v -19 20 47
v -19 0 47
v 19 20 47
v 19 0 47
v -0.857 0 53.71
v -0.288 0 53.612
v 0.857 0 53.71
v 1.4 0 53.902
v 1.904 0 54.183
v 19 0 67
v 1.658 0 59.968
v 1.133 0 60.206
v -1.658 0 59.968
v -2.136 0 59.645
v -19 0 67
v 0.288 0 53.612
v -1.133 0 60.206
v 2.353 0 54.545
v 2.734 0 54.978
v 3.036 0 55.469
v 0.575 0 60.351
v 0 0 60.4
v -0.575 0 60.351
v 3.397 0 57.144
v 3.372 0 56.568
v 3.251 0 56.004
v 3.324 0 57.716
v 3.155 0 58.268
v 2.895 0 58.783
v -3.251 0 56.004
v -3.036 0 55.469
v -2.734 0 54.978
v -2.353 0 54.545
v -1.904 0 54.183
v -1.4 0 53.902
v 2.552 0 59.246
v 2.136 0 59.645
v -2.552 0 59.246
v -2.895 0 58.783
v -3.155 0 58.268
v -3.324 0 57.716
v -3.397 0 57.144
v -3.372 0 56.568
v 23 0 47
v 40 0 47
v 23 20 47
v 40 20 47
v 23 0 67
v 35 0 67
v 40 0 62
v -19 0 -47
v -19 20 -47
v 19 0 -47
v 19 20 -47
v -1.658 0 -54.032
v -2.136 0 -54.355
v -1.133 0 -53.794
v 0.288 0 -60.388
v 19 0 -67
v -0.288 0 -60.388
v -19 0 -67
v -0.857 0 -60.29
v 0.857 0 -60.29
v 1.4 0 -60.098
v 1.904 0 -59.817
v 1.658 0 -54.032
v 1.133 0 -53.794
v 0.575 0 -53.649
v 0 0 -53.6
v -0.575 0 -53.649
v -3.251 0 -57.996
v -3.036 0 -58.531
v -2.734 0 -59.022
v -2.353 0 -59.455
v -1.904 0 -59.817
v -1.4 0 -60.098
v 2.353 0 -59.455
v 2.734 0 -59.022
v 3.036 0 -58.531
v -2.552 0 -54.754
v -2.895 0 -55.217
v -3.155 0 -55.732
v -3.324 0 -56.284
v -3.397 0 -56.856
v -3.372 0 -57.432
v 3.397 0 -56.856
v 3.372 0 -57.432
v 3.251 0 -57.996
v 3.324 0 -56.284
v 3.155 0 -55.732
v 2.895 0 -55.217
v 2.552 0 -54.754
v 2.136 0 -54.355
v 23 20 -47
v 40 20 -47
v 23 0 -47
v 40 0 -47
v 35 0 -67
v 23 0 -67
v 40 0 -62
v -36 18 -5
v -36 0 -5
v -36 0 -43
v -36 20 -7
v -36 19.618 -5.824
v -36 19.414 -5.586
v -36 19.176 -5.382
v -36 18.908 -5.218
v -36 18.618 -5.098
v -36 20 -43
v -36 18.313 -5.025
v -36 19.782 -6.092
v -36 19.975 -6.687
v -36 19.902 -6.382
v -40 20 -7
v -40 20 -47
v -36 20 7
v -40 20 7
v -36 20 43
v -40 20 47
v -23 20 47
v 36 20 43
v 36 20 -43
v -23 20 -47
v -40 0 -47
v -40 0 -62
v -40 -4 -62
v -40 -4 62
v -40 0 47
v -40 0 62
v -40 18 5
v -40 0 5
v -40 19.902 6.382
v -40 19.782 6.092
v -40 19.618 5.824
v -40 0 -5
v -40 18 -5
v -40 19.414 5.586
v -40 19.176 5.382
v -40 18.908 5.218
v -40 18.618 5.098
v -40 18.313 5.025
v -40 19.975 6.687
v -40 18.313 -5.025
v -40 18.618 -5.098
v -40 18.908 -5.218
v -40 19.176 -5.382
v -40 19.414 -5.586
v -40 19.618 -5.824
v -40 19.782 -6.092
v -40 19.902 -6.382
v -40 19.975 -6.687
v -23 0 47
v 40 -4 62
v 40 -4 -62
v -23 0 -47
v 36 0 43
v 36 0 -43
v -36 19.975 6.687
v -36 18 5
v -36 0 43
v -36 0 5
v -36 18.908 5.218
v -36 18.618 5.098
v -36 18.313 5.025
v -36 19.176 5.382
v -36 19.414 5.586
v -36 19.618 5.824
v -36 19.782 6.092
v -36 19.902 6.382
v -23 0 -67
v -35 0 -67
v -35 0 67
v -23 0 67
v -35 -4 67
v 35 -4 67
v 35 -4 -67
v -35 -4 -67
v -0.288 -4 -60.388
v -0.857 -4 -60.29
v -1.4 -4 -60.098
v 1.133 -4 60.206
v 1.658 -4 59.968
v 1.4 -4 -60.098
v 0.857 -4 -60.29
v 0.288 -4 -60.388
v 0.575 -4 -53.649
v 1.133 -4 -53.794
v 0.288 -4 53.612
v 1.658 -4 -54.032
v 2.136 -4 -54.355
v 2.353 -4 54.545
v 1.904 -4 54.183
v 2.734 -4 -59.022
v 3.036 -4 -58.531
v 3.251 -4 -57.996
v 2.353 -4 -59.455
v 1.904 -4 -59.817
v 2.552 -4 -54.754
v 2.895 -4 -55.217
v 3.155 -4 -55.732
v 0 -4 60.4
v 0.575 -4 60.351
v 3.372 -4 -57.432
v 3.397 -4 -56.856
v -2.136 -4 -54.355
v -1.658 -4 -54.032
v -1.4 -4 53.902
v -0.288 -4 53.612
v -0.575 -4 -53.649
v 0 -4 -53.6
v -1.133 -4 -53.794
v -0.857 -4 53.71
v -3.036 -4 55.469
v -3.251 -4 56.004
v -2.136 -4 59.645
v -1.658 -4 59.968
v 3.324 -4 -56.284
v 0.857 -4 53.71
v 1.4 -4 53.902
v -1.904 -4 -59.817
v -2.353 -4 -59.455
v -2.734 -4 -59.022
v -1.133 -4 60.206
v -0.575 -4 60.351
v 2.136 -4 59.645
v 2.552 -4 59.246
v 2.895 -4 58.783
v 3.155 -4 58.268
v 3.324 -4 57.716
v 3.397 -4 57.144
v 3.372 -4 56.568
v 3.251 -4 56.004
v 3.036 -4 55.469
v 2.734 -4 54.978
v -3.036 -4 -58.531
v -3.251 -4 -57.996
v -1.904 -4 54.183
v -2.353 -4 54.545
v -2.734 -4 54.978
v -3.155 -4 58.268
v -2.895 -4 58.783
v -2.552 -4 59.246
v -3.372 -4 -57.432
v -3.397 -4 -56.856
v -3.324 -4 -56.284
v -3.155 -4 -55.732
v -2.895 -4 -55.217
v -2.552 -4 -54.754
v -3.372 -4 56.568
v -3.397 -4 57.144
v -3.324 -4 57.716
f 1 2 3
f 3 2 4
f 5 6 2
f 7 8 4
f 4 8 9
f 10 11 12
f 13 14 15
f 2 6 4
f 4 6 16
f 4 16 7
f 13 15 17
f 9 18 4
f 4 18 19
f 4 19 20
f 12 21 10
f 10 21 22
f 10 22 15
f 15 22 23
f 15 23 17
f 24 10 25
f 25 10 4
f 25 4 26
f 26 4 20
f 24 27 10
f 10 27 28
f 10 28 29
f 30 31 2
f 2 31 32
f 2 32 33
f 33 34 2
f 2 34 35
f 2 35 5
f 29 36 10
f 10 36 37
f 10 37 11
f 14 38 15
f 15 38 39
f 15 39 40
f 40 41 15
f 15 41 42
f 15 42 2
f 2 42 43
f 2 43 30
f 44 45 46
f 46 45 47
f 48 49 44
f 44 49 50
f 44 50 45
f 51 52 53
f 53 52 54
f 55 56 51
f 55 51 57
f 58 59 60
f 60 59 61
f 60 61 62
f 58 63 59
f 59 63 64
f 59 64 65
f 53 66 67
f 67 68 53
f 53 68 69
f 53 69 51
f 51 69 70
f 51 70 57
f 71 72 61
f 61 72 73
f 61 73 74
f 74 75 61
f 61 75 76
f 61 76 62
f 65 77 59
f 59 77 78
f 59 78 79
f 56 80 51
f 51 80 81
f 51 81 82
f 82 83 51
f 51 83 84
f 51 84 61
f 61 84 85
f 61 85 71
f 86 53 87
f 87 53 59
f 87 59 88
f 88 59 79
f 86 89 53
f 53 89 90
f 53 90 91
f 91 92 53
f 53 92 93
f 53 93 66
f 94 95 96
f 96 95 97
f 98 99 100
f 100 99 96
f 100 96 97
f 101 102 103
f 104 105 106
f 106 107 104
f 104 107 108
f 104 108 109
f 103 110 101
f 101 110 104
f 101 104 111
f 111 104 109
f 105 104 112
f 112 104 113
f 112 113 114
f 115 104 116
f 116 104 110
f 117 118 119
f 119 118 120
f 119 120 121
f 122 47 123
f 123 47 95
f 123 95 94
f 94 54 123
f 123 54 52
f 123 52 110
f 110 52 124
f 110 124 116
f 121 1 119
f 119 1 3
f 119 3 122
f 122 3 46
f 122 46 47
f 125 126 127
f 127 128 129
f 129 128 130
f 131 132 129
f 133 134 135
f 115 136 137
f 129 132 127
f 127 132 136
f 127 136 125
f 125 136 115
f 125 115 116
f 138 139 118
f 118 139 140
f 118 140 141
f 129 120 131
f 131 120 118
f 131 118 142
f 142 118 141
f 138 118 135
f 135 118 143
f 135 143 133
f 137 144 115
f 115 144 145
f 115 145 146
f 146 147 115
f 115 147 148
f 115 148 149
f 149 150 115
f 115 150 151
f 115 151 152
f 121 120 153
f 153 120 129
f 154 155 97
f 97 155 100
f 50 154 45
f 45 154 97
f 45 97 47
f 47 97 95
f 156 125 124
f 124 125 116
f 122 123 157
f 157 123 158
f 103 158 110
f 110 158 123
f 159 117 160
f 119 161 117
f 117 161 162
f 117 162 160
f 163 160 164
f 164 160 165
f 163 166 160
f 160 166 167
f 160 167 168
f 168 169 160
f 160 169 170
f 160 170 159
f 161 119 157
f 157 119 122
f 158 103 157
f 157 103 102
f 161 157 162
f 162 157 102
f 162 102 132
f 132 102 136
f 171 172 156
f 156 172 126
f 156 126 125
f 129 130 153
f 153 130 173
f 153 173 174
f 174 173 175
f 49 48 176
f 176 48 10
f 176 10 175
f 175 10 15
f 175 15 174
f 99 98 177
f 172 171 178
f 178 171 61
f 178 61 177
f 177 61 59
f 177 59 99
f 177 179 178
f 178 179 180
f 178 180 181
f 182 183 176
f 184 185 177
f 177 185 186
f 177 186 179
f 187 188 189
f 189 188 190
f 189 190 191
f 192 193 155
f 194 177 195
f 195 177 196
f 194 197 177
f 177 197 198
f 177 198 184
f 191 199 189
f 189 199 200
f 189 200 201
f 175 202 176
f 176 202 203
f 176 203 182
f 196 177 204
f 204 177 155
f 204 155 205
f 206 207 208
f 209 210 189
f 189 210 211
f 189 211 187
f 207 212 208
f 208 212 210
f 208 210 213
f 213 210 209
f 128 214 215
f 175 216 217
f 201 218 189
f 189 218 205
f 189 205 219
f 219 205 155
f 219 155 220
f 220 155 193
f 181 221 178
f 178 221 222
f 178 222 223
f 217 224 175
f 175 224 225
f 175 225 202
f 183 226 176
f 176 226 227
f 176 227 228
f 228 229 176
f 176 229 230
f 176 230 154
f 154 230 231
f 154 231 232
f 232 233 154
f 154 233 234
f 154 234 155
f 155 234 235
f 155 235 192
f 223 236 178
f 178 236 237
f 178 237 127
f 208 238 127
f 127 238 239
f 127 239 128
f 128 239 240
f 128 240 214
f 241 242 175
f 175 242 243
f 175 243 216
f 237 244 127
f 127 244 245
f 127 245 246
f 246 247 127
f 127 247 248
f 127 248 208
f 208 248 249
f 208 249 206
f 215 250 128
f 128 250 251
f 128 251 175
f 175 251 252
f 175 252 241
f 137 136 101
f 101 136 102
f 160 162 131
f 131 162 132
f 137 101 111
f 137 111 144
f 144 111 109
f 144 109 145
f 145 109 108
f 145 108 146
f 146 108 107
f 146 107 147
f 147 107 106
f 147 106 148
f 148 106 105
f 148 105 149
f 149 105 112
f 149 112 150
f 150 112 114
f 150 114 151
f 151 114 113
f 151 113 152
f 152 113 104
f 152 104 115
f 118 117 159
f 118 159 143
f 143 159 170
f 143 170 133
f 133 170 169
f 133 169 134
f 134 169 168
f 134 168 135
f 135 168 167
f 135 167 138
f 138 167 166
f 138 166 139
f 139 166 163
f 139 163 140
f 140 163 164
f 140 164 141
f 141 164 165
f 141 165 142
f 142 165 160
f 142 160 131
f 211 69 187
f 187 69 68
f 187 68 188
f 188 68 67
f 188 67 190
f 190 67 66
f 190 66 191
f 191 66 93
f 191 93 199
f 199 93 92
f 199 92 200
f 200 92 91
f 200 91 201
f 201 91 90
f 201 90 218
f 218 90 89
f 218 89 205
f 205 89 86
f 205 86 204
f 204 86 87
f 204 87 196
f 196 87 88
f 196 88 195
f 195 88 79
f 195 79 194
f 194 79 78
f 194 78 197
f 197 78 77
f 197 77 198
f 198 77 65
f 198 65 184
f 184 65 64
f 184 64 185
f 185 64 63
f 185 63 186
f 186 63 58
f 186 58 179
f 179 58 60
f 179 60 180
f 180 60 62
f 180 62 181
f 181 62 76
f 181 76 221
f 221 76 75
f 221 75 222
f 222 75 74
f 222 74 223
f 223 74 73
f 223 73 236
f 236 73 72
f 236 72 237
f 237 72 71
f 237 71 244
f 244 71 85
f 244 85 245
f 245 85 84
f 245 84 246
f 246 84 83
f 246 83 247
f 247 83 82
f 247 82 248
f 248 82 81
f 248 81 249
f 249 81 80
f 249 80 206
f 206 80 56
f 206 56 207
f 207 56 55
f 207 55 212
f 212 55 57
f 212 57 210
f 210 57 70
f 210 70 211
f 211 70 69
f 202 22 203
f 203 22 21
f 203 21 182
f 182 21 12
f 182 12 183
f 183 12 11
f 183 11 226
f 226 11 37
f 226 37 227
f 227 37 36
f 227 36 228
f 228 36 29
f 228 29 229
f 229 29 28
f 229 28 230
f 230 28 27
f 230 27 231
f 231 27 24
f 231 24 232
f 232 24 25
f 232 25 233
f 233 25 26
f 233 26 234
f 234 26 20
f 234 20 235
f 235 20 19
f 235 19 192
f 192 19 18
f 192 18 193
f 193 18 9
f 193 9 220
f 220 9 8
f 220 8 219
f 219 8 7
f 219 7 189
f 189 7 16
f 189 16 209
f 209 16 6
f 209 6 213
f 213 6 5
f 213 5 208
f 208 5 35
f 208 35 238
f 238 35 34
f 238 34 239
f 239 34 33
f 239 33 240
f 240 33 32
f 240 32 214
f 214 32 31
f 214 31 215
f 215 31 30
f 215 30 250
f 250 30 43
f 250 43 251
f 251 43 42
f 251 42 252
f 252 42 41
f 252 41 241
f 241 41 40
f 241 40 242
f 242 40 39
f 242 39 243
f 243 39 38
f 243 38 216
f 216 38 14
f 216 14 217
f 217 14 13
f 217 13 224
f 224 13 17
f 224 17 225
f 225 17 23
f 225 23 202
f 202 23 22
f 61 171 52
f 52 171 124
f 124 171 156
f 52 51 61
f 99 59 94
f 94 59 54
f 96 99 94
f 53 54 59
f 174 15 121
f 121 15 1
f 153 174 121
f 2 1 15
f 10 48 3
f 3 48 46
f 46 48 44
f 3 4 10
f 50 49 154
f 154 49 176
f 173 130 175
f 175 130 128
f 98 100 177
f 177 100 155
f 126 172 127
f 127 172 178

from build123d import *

# Parameters (mm, degrees)
SKETCH1_W               = 80
SKETCH1_H               = 94
SKETCH1_W_2             = 72
SKETCH1_H_2             = 86
BOSS_EXTRUDE3_DEPTH     = 20
SKETCH10_W              = 80
SKETCH10_H              = 134
BOSS_EXTRUDE4_DEPTH     = 4
CUT_EXTRUDE1_REACH      = 108.25
SKETCH11_W              = 10
SKETCH11_H              = 20
FILLET2_R               = 2
TAP_DRILL_FOR_M8_TAP2_D = 6.8
RIB10_REACH             = 94.79
SKETCH26_WALL_W         = 215.864442602
SKETCH26_WALL_H         = 4
MIRROR4_COPY_1_REACH    = 94.79
MIRROR4_COPY_1_SKETCH_W = 215.864442602
MIRROR4_COPY_1_SKETCH_H = 4
CHAMFER1_SIZE           = 5


with BuildPart() as part:
    # Sketch1 → Boss-Extrude3 (new body)
    with BuildSketch(Plane(origin=(0, 0, 0), x_dir=(1, 0, 0), z_dir=(0, 1, 0))):
        Rectangle(SKETCH1_W, SKETCH1_H)
        Rectangle(SKETCH1_W_2, SKETCH1_H_2, mode=Mode.SUBTRACT)
    extrude(amount=BOSS_EXTRUDE3_DEPTH)

    # Sketch10 → Boss-Extrude4 (add)
    with BuildSketch(Plane.XZ):
        Rectangle(SKETCH10_W, SKETCH10_H)
    extrude(amount=BOSS_EXTRUDE4_DEPTH)

    # Sketch11 → Cut-Extrude1 (cut, up to next)
    with BuildSketch(Plane.ZY.offset(40), mode=Mode.PRIVATE) as cut_extrude1_sk1:
        with Locations((0, 10)):
            Rectangle(SKETCH11_W, SKETCH11_H)
    cut_extrude1_tool1 = extrude(cut_extrude1_sk1.sketch, amount=-CUT_EXTRUDE1_REACH, mode=Mode.PRIVATE) & part.part
    add(cut_extrude1_tool1.solids().sort_by_distance((-40, 10, 0))[0], mode=Mode.SUBTRACT)

    # Fillet2
    fillet2_edges = [part.edges().sort_by_distance(p)[0] for p in [
        (-38, 20, 5),
        (-38, 20, -5),
    ]]
    fillet(fillet2_edges, radius=FILLET2_R)

    # Tap Drill for M8 Tap2 (through all)
    with Locations(Plane(origin=(0, 0, 57), x_dir=(0, 0, 1), z_dir=(0, 1, 0))):
        with Locations((0, 0), (-114, 0)):
            Hole(TAP_DRILL_FOR_M8_TAP2_D / 2)

    # Sketch26 wall → Rib10 (add, up to next)
    with BuildSketch(Plane(origin=(-21, 10, -57), x_dir=(0, 0.707106781187, 0.707106781187), z_dir=(0, 0.707106781187, -0.707106781187)), mode=Mode.PRIVATE) as rib10_sk1:
        Rectangle(SKETCH26_WALL_W, SKETCH26_WALL_H)
    rib10_tool1 = extrude(rib10_sk1.sketch, amount=-RIB10_REACH, mode=Mode.PRIVATE) - part.part
    rib10 = rib10_tool1.solids().sort_by_distance((-21, 10, -57))[0]
    add(rib10)

    # Mirror3: Rib10 across plane
    add(rib10.mirror(Plane(origin=(0, 0, 0), x_dir=(0, 0, 1), z_dir=(1, 0, 0))))

    # Mirror4: Rib10 across plane
    add(rib10.mirror(Plane.XY))

    # Mirror4 copy 1 sketch → Mirror4 copy 1 (add, up to next)
    with BuildSketch(Plane(origin=(21, 10, 57), x_dir=(0, 0.707106781187, -0.707106781187), z_dir=(0, 0.707106781187, 0.707106781187)), mode=Mode.PRIVATE) as mirror4_copy_1_sk1:
        Rectangle(MIRROR4_COPY_1_SKETCH_W, MIRROR4_COPY_1_SKETCH_H)
    mirror4_copy_1_tool1 = extrude(mirror4_copy_1_sk1.sketch, amount=-MIRROR4_COPY_1_REACH, mode=Mode.PRIVATE) - part.part
    add(mirror4_copy_1_tool1.solids().sort_by_distance((21, 10, 57))[0])

    # Chamfer1
    chamfer1_edges = [part.edges().sort_by_distance(p)[0] for p in [
        (40, -2, -67),
        (40, -2, 67),
        (-40, -2, 67),
        (-40, -2, -67),
    ]]
    chamfer(chamfer1_edges, length=CHAMFER1_SIZE)


solid = part.part
